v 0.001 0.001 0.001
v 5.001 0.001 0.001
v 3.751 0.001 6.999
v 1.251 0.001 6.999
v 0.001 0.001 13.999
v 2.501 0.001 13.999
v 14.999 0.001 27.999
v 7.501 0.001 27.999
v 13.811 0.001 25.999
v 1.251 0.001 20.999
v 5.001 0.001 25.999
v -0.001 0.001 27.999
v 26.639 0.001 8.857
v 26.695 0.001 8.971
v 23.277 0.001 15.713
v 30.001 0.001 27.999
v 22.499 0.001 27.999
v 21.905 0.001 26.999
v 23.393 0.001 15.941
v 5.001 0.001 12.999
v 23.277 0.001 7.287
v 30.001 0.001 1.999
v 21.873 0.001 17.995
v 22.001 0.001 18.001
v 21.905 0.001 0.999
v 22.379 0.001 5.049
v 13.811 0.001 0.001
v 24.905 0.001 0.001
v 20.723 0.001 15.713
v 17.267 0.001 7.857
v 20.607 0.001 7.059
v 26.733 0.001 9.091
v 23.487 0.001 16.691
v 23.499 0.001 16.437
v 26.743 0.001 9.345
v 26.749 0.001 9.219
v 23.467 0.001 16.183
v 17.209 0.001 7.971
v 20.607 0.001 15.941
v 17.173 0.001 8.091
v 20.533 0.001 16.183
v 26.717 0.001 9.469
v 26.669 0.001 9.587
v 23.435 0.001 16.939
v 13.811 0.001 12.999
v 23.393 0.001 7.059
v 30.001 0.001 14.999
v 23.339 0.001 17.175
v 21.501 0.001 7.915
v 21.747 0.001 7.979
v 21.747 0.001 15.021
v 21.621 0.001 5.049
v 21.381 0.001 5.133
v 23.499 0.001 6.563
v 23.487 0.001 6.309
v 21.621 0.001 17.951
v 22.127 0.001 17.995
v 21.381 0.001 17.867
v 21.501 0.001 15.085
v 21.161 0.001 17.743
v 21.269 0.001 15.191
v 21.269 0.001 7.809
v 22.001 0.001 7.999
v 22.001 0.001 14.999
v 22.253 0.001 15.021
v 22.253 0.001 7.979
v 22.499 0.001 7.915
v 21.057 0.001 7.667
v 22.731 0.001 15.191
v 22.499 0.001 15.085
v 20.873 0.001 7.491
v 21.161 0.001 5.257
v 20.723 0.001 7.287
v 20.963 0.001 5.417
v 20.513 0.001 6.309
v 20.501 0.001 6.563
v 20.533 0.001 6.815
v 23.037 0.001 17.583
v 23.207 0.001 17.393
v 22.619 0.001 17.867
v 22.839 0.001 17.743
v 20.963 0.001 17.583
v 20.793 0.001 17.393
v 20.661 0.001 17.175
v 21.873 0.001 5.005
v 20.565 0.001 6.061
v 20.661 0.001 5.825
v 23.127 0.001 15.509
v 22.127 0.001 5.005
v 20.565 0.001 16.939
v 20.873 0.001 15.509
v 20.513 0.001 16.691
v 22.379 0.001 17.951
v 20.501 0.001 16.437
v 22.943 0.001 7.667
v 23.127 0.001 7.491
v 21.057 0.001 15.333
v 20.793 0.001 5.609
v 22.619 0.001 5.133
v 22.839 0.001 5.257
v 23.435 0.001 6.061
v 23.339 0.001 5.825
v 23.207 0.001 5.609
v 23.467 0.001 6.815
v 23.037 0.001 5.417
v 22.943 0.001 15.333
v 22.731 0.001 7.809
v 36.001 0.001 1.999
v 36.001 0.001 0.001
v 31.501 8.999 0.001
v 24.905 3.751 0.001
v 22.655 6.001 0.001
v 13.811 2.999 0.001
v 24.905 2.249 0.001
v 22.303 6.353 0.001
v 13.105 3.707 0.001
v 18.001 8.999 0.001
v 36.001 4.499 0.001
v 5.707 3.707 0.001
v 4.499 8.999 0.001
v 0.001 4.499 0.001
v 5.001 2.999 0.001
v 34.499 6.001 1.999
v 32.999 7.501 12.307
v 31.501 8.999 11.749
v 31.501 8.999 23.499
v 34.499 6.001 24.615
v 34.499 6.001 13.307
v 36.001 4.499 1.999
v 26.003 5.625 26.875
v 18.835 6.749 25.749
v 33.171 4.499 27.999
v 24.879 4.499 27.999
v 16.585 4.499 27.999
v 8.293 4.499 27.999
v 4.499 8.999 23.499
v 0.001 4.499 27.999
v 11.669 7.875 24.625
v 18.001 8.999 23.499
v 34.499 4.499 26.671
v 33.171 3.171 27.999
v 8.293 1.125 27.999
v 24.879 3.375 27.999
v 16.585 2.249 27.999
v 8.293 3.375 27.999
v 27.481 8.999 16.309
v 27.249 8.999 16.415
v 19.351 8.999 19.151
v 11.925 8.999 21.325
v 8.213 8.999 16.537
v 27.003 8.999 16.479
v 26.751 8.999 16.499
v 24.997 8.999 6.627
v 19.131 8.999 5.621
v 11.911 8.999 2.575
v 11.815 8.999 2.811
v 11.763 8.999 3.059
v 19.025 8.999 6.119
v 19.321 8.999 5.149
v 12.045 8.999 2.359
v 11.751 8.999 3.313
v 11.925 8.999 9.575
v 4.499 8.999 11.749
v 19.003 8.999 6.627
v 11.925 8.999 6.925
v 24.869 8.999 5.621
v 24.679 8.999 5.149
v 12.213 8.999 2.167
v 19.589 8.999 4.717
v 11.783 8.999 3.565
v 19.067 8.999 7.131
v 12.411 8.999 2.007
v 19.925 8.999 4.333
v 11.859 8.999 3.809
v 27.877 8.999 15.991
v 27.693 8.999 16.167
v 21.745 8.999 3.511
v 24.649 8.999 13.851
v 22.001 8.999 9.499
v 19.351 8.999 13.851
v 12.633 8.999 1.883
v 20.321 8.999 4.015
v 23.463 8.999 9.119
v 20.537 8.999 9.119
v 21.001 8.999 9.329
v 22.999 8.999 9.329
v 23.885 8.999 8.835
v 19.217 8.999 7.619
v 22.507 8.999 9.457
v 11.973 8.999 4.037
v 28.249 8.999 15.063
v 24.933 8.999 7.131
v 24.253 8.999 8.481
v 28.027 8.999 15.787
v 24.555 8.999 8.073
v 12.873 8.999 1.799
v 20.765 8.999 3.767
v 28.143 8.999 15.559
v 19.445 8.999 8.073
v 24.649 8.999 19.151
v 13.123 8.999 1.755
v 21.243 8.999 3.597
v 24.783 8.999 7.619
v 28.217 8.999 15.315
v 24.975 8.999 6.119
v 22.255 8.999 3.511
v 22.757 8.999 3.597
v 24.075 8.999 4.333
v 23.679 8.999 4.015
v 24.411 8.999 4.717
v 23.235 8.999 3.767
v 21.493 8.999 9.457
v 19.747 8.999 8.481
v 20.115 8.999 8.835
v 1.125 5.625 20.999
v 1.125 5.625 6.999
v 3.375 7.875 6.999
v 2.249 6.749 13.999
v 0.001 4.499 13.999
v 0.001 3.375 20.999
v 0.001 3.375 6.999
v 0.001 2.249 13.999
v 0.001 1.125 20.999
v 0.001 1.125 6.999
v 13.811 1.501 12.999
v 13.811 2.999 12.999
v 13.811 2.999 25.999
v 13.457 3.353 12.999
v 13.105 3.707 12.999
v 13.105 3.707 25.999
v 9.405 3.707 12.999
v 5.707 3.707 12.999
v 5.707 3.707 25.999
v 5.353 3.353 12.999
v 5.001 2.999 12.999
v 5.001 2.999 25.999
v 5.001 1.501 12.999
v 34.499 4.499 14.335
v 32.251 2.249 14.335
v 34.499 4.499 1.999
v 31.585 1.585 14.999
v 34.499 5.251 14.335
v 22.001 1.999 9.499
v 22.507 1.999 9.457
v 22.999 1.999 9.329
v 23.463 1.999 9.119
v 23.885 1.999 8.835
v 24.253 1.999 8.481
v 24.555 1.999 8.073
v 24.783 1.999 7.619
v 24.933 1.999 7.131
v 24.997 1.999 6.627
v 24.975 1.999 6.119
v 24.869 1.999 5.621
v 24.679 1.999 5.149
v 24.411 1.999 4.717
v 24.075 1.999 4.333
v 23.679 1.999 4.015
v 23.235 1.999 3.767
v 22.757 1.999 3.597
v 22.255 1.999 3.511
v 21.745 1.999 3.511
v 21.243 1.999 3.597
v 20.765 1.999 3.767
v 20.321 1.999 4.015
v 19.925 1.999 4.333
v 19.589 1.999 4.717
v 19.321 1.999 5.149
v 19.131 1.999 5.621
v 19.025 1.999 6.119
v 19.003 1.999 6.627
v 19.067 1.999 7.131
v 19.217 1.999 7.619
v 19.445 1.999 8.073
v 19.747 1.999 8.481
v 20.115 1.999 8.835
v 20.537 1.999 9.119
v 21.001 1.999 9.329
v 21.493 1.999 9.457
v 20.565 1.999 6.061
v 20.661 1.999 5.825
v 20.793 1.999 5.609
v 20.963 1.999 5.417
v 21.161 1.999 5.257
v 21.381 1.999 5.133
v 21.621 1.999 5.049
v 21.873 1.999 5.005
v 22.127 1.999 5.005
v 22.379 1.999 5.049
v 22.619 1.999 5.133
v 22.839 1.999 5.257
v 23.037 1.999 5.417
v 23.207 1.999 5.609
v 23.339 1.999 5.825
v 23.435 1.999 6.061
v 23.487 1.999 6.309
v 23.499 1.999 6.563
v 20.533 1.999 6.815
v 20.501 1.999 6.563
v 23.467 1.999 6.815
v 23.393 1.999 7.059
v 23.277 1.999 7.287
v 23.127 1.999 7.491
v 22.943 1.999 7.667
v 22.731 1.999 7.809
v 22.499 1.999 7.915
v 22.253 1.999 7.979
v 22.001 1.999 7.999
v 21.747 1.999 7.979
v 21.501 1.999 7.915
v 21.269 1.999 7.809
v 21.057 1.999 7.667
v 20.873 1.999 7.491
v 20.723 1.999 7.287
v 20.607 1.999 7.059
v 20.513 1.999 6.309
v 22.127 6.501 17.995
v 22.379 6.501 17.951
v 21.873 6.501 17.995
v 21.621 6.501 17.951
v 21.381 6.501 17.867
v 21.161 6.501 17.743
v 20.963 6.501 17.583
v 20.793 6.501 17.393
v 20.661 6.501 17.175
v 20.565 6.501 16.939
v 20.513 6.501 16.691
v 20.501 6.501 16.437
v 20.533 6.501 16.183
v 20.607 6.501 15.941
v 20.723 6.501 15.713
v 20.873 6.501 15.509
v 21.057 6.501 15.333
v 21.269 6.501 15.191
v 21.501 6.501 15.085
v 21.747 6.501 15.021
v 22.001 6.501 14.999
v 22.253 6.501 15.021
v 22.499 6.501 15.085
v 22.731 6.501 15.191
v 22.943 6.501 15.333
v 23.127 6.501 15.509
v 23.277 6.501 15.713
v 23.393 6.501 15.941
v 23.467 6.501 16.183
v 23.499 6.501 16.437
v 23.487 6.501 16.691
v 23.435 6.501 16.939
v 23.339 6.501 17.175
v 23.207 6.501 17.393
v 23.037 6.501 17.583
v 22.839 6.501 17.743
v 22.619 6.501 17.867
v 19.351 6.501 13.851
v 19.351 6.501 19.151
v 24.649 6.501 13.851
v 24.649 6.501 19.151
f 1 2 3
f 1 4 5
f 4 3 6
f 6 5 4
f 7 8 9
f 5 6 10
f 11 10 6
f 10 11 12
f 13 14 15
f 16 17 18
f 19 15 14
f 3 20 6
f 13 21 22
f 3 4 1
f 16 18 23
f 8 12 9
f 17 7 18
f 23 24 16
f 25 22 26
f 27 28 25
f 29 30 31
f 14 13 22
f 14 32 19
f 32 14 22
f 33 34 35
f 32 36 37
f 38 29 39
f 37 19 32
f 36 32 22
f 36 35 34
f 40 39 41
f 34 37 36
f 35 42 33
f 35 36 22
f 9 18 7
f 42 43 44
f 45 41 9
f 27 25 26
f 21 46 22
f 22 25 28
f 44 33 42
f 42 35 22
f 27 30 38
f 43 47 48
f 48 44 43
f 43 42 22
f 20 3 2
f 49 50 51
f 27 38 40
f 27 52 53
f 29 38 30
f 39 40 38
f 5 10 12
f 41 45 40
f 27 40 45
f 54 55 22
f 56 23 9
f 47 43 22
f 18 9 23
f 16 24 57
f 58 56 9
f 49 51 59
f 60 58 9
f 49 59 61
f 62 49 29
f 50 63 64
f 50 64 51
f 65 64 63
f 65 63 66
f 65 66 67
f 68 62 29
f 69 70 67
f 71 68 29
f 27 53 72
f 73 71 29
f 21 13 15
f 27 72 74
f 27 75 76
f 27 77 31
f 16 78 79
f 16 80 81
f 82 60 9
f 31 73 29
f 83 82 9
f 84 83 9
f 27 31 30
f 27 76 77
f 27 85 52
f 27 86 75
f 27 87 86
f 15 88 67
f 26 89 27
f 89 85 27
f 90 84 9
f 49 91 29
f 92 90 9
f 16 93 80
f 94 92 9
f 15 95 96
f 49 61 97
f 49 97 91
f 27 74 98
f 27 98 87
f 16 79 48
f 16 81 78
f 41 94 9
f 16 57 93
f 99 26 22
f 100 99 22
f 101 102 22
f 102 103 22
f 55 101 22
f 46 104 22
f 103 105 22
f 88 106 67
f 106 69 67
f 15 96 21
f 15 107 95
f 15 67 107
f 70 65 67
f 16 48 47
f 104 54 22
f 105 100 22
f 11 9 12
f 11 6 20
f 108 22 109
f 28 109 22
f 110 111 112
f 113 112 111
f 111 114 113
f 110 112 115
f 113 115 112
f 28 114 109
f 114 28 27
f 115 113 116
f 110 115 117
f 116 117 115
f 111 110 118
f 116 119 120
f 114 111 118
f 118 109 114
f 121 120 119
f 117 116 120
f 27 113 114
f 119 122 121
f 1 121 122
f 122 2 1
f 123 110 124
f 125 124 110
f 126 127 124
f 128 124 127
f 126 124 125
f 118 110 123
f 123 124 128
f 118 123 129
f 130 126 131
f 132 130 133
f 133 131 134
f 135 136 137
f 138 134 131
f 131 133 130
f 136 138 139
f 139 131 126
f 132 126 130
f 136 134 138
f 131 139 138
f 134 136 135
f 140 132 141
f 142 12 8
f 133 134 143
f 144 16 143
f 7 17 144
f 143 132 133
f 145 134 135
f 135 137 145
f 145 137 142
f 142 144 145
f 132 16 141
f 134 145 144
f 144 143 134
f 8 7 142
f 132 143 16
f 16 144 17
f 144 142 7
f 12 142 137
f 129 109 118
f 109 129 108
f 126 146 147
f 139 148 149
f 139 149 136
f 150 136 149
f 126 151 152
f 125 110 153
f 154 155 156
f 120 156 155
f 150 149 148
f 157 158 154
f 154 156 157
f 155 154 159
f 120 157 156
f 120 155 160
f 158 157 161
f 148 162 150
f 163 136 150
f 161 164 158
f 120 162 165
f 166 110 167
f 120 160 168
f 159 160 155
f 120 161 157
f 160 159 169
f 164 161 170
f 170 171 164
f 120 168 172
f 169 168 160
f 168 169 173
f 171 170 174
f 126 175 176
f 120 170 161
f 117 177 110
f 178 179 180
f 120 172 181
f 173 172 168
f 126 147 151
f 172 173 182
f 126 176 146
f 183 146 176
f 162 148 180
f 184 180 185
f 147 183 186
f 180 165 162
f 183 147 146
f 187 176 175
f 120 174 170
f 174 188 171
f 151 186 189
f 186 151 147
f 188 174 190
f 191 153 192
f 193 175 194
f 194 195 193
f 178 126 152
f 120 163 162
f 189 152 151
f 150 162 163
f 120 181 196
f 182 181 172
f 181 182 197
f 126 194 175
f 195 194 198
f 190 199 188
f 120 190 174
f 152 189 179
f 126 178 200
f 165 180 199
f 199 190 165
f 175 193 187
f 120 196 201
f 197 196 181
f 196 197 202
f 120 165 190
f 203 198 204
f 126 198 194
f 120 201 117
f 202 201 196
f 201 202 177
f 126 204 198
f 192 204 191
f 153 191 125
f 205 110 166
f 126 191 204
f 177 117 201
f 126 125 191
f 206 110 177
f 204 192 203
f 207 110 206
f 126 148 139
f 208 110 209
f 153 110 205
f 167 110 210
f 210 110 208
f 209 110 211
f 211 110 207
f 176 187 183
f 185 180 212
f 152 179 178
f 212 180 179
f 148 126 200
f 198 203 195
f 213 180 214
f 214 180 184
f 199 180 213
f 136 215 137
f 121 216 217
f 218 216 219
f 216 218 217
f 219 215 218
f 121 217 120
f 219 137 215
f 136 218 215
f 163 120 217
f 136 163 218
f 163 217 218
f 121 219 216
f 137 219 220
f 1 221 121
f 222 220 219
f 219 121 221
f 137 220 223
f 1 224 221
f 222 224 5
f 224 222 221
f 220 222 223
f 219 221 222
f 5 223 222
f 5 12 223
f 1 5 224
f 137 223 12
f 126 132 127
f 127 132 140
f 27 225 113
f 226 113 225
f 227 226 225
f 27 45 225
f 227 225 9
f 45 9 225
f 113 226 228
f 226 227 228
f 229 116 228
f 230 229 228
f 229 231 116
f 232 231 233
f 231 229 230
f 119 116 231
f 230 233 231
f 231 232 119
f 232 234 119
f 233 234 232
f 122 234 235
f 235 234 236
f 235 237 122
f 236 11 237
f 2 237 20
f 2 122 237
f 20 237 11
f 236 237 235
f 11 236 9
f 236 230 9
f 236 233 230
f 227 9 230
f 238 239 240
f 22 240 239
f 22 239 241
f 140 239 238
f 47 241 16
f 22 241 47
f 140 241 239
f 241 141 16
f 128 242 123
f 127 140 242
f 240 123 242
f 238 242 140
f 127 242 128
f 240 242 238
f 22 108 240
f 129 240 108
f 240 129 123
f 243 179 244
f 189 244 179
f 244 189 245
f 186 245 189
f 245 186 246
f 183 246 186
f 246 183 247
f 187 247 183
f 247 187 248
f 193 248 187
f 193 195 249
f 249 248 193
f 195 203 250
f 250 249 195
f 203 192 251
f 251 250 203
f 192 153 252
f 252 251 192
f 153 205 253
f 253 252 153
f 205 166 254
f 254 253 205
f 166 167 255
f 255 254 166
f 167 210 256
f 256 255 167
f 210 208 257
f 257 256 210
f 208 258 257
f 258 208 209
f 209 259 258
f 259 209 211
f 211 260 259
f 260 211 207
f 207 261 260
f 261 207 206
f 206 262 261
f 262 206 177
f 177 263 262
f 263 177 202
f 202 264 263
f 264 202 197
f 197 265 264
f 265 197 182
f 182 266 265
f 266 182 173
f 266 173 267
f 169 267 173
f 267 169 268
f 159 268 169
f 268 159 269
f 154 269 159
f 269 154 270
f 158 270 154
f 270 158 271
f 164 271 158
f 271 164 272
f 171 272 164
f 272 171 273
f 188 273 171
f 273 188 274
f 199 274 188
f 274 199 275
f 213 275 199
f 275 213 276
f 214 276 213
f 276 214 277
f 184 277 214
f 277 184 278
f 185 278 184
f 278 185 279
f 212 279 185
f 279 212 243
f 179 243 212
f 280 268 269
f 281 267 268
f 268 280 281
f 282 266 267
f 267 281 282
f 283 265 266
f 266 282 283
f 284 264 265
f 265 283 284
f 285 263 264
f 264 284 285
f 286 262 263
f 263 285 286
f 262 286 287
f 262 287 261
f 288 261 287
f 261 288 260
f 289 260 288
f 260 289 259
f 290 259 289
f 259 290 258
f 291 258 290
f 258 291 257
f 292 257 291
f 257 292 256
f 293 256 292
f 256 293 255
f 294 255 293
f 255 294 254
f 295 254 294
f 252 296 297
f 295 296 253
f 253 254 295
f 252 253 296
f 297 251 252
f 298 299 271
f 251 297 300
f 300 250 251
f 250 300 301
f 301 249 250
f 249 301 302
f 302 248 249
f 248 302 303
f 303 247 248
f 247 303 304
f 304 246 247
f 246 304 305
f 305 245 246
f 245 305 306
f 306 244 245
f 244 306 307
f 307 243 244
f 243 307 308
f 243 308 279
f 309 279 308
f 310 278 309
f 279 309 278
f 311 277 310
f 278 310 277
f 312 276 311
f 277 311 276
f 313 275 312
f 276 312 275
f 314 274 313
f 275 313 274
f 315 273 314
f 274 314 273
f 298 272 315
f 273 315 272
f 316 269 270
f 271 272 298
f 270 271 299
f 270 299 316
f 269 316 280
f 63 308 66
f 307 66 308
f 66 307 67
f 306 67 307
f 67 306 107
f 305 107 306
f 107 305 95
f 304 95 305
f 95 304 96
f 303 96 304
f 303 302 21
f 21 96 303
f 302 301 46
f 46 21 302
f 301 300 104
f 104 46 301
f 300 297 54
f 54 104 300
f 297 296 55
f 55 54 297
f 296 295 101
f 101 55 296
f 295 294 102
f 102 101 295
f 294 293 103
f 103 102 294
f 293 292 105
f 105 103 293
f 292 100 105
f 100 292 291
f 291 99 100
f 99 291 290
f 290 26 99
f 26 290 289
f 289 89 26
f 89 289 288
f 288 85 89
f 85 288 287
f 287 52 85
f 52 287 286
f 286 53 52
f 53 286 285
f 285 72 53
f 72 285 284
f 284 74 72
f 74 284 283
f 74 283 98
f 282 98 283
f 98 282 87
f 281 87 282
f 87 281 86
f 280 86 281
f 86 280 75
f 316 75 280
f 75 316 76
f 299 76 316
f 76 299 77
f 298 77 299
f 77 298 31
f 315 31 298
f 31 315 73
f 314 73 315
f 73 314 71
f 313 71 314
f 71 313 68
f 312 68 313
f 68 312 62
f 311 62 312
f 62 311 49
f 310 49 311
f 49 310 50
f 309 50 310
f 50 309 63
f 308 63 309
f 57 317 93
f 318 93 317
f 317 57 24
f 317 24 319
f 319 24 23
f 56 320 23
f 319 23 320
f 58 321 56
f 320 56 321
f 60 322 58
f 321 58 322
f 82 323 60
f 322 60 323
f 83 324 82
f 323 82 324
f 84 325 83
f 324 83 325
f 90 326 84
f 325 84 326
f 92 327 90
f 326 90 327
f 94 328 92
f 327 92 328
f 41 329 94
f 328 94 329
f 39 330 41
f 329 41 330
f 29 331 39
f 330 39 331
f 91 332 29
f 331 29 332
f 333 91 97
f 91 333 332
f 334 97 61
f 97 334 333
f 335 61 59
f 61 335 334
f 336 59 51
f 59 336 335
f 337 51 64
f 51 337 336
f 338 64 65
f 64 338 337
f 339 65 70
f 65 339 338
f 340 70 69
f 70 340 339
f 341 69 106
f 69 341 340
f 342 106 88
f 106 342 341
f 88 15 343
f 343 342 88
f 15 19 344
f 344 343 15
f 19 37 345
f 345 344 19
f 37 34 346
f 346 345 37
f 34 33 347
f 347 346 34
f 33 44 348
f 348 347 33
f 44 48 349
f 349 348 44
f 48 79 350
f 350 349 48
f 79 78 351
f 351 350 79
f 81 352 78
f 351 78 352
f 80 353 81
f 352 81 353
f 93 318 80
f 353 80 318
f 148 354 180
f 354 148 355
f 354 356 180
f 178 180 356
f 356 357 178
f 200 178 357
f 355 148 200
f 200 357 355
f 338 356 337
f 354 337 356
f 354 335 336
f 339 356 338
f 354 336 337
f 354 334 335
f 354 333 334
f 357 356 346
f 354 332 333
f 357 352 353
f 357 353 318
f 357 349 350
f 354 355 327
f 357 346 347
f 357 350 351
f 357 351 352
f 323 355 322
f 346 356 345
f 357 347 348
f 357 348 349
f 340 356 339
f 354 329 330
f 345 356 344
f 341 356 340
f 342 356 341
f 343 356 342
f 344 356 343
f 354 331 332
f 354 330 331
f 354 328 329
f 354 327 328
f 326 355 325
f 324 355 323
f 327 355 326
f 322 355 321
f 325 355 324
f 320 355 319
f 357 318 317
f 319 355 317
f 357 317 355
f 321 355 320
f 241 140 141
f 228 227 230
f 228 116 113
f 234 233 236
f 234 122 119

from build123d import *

# Parameters (mm, degrees)
SKETCH1_W               = 36
SKETCH1_H               = 9
BOSS_EXTRUDE1_DEPTH     = 28
CUT_EXTRUDE1_DEPTH      = 28
CUT_EXTRUDE2_DEPTH      = 36
SKETCH5_W               = 11.440376565
SKETCH5_H               = 15.618965423
CUT_EXTRUDE4_DEPTH      = 2
CUT_EXTRUDE5_DEPTH      = 2
CUT_EXTRUDE5_DEPTH_BACK = 2
CUT_EXTRUDE6_DEPTH      = 26
CUT_EXTRUDE7_DEPTH      = 26
SKETCH10_R              = 3
CUT_EXTRUDE8_DEPTH      = 7
SKETCH11_R              = 1.5
CUT_EXTRUDE9_DEPTH      = 2
SKETCH12_R              = 1.5
CUT_EXTRUDE10_DEPTH     = 9
SKETCH13_W              = 5.3
SKETCH13_H              = 5.3
CUT_EXTRUDE11_DEPTH     = 2.5


with BuildPart() as part:
    # Sketch1 → Boss-Extrude1 (new body)
    with BuildSketch(Plane.XY):
        with Locations((18, 4.5)):
            Rectangle(SKETCH1_W, SKETCH1_H)
    extrude(amount=BOSS_EXTRUDE1_DEPTH)

    # Sketch2 → Cut-Extrude1 (cut)
    with BuildSketch(Plane.XY):
        Polygon((0, 4.5), (4.5, 9), (0, 9), align=None)
        Polygon((36, 4.5), (31.5, 9), (36, 9), align=None)
    extrude(amount=CUT_EXTRUDE1_DEPTH, mode=Mode.SUBTRACT)

    # Sketch3 → Cut-Extrude2 (cut)
    with BuildSketch(Plane(origin=(0, 0, 0), x_dir=(0, 0, -1), z_dir=(1, 0, 0))):
        Polygon((-28, 4.5), (-23.5, 9), (-28, 9), align=None)
    extrude(amount=CUT_EXTRUDE2_DEPTH, mode=Mode.SUBTRACT)

    # Sketch5 → Cut-Extrude4 (cut)
    with BuildSketch(Plane(origin=(32, 0, 32), x_dir=(0, 1, 0), z_dir=(0.707106781, 0, 0.707106781))):
        with Locations((5.720188283, -5.935696583)):
            Rectangle(SKETCH5_W, SKETCH5_H)
    extrude(amount=-CUT_EXTRUDE4_DEPTH, mode=Mode.SUBTRACT)

    # Sketch6 → Cut-Extrude5 (cut, two sides)
    with BuildSketch(Plane(origin=(4, 0, -4), x_dir=(0.577350269, -0.577350269, 0.577350269), z_dir=(-0.707106781, 0, 0.707106781))) as cut_extrude5_sk:
        Polygon((26.558112383, 29.802125204), (32.719347855, 28.647424665), (30.19862658, 32.212262879), align=None)
    extrude(amount=CUT_EXTRUDE5_DEPTH, mode=Mode.SUBTRACT)
    extrude(cut_extrude5_sk.sketch, amount=-CUT_EXTRUDE5_DEPTH_BACK, mode=Mode.SUBTRACT)

    # Sketch7 → Cut-Extrude6 (cut)
    with BuildSketch(Plane.XY):
        Polygon((5, 0), (5, 3), (5.707106781, 3.707106781), (13.104524105, 3.707106781), (13.811630886, 3), (13.811630886, 0), align=None)
    extrude(amount=CUT_EXTRUDE6_DEPTH, mode=Mode.SUBTRACT)

    # Sketch8 → Cut-Extrude7 (cut)
    with BuildSketch(Plane.XY.offset(28)):
        Polygon((36, 0), (30, 0), (34.5, 4.5), (34.5, 6), (36, 6), align=None)
    extrude(amount=-CUT_EXTRUDE7_DEPTH, mode=Mode.SUBTRACT)

    # Sketch10 → Cut-Extrude8 (cut)
    with BuildSketch(Plane(origin=(0, 9, 0), x_dir=(1, 0, 0), z_dir=(0, 1, 0))):
        with Locations((22, -6.5)):
            Circle(SKETCH10_R)
    extrude(amount=-CUT_EXTRUDE8_DEPTH, mode=Mode.SUBTRACT)

    # Sketch11 → Cut-Extrude9 (cut)
    with BuildSketch(Plane(origin=(0, 2, 0), x_dir=(1, 0, 0), z_dir=(0, 1, 0))):
        with Locations((22, -6.5)):
            Circle(SKETCH11_R)
    extrude(amount=-CUT_EXTRUDE9_DEPTH, mode=Mode.SUBTRACT)

    # Sketch12 → Cut-Extrude10 (cut)
    with BuildSketch(Plane(origin=(0, 0, 0), x_dir=(1, 0, 0), z_dir=(0, 1, 0))):
        with Locations((22, -16.5)):
            Circle(SKETCH12_R)
    extrude(amount=CUT_EXTRUDE10_DEPTH, mode=Mode.SUBTRACT)

    # Sketch13 → Cut-Extrude11 (cut)
    with BuildSketch(Plane(origin=(0, 9, 0), x_dir=(1, 0, 0), z_dir=(0, 1, 0))):
        with Locations((22, -16.5)):
            Rectangle(SKETCH13_W, SKETCH13_H)
    extrude(amount=-CUT_EXTRUDE11_DEPTH, mode=Mode.SUBTRACT)


solid = part.part
